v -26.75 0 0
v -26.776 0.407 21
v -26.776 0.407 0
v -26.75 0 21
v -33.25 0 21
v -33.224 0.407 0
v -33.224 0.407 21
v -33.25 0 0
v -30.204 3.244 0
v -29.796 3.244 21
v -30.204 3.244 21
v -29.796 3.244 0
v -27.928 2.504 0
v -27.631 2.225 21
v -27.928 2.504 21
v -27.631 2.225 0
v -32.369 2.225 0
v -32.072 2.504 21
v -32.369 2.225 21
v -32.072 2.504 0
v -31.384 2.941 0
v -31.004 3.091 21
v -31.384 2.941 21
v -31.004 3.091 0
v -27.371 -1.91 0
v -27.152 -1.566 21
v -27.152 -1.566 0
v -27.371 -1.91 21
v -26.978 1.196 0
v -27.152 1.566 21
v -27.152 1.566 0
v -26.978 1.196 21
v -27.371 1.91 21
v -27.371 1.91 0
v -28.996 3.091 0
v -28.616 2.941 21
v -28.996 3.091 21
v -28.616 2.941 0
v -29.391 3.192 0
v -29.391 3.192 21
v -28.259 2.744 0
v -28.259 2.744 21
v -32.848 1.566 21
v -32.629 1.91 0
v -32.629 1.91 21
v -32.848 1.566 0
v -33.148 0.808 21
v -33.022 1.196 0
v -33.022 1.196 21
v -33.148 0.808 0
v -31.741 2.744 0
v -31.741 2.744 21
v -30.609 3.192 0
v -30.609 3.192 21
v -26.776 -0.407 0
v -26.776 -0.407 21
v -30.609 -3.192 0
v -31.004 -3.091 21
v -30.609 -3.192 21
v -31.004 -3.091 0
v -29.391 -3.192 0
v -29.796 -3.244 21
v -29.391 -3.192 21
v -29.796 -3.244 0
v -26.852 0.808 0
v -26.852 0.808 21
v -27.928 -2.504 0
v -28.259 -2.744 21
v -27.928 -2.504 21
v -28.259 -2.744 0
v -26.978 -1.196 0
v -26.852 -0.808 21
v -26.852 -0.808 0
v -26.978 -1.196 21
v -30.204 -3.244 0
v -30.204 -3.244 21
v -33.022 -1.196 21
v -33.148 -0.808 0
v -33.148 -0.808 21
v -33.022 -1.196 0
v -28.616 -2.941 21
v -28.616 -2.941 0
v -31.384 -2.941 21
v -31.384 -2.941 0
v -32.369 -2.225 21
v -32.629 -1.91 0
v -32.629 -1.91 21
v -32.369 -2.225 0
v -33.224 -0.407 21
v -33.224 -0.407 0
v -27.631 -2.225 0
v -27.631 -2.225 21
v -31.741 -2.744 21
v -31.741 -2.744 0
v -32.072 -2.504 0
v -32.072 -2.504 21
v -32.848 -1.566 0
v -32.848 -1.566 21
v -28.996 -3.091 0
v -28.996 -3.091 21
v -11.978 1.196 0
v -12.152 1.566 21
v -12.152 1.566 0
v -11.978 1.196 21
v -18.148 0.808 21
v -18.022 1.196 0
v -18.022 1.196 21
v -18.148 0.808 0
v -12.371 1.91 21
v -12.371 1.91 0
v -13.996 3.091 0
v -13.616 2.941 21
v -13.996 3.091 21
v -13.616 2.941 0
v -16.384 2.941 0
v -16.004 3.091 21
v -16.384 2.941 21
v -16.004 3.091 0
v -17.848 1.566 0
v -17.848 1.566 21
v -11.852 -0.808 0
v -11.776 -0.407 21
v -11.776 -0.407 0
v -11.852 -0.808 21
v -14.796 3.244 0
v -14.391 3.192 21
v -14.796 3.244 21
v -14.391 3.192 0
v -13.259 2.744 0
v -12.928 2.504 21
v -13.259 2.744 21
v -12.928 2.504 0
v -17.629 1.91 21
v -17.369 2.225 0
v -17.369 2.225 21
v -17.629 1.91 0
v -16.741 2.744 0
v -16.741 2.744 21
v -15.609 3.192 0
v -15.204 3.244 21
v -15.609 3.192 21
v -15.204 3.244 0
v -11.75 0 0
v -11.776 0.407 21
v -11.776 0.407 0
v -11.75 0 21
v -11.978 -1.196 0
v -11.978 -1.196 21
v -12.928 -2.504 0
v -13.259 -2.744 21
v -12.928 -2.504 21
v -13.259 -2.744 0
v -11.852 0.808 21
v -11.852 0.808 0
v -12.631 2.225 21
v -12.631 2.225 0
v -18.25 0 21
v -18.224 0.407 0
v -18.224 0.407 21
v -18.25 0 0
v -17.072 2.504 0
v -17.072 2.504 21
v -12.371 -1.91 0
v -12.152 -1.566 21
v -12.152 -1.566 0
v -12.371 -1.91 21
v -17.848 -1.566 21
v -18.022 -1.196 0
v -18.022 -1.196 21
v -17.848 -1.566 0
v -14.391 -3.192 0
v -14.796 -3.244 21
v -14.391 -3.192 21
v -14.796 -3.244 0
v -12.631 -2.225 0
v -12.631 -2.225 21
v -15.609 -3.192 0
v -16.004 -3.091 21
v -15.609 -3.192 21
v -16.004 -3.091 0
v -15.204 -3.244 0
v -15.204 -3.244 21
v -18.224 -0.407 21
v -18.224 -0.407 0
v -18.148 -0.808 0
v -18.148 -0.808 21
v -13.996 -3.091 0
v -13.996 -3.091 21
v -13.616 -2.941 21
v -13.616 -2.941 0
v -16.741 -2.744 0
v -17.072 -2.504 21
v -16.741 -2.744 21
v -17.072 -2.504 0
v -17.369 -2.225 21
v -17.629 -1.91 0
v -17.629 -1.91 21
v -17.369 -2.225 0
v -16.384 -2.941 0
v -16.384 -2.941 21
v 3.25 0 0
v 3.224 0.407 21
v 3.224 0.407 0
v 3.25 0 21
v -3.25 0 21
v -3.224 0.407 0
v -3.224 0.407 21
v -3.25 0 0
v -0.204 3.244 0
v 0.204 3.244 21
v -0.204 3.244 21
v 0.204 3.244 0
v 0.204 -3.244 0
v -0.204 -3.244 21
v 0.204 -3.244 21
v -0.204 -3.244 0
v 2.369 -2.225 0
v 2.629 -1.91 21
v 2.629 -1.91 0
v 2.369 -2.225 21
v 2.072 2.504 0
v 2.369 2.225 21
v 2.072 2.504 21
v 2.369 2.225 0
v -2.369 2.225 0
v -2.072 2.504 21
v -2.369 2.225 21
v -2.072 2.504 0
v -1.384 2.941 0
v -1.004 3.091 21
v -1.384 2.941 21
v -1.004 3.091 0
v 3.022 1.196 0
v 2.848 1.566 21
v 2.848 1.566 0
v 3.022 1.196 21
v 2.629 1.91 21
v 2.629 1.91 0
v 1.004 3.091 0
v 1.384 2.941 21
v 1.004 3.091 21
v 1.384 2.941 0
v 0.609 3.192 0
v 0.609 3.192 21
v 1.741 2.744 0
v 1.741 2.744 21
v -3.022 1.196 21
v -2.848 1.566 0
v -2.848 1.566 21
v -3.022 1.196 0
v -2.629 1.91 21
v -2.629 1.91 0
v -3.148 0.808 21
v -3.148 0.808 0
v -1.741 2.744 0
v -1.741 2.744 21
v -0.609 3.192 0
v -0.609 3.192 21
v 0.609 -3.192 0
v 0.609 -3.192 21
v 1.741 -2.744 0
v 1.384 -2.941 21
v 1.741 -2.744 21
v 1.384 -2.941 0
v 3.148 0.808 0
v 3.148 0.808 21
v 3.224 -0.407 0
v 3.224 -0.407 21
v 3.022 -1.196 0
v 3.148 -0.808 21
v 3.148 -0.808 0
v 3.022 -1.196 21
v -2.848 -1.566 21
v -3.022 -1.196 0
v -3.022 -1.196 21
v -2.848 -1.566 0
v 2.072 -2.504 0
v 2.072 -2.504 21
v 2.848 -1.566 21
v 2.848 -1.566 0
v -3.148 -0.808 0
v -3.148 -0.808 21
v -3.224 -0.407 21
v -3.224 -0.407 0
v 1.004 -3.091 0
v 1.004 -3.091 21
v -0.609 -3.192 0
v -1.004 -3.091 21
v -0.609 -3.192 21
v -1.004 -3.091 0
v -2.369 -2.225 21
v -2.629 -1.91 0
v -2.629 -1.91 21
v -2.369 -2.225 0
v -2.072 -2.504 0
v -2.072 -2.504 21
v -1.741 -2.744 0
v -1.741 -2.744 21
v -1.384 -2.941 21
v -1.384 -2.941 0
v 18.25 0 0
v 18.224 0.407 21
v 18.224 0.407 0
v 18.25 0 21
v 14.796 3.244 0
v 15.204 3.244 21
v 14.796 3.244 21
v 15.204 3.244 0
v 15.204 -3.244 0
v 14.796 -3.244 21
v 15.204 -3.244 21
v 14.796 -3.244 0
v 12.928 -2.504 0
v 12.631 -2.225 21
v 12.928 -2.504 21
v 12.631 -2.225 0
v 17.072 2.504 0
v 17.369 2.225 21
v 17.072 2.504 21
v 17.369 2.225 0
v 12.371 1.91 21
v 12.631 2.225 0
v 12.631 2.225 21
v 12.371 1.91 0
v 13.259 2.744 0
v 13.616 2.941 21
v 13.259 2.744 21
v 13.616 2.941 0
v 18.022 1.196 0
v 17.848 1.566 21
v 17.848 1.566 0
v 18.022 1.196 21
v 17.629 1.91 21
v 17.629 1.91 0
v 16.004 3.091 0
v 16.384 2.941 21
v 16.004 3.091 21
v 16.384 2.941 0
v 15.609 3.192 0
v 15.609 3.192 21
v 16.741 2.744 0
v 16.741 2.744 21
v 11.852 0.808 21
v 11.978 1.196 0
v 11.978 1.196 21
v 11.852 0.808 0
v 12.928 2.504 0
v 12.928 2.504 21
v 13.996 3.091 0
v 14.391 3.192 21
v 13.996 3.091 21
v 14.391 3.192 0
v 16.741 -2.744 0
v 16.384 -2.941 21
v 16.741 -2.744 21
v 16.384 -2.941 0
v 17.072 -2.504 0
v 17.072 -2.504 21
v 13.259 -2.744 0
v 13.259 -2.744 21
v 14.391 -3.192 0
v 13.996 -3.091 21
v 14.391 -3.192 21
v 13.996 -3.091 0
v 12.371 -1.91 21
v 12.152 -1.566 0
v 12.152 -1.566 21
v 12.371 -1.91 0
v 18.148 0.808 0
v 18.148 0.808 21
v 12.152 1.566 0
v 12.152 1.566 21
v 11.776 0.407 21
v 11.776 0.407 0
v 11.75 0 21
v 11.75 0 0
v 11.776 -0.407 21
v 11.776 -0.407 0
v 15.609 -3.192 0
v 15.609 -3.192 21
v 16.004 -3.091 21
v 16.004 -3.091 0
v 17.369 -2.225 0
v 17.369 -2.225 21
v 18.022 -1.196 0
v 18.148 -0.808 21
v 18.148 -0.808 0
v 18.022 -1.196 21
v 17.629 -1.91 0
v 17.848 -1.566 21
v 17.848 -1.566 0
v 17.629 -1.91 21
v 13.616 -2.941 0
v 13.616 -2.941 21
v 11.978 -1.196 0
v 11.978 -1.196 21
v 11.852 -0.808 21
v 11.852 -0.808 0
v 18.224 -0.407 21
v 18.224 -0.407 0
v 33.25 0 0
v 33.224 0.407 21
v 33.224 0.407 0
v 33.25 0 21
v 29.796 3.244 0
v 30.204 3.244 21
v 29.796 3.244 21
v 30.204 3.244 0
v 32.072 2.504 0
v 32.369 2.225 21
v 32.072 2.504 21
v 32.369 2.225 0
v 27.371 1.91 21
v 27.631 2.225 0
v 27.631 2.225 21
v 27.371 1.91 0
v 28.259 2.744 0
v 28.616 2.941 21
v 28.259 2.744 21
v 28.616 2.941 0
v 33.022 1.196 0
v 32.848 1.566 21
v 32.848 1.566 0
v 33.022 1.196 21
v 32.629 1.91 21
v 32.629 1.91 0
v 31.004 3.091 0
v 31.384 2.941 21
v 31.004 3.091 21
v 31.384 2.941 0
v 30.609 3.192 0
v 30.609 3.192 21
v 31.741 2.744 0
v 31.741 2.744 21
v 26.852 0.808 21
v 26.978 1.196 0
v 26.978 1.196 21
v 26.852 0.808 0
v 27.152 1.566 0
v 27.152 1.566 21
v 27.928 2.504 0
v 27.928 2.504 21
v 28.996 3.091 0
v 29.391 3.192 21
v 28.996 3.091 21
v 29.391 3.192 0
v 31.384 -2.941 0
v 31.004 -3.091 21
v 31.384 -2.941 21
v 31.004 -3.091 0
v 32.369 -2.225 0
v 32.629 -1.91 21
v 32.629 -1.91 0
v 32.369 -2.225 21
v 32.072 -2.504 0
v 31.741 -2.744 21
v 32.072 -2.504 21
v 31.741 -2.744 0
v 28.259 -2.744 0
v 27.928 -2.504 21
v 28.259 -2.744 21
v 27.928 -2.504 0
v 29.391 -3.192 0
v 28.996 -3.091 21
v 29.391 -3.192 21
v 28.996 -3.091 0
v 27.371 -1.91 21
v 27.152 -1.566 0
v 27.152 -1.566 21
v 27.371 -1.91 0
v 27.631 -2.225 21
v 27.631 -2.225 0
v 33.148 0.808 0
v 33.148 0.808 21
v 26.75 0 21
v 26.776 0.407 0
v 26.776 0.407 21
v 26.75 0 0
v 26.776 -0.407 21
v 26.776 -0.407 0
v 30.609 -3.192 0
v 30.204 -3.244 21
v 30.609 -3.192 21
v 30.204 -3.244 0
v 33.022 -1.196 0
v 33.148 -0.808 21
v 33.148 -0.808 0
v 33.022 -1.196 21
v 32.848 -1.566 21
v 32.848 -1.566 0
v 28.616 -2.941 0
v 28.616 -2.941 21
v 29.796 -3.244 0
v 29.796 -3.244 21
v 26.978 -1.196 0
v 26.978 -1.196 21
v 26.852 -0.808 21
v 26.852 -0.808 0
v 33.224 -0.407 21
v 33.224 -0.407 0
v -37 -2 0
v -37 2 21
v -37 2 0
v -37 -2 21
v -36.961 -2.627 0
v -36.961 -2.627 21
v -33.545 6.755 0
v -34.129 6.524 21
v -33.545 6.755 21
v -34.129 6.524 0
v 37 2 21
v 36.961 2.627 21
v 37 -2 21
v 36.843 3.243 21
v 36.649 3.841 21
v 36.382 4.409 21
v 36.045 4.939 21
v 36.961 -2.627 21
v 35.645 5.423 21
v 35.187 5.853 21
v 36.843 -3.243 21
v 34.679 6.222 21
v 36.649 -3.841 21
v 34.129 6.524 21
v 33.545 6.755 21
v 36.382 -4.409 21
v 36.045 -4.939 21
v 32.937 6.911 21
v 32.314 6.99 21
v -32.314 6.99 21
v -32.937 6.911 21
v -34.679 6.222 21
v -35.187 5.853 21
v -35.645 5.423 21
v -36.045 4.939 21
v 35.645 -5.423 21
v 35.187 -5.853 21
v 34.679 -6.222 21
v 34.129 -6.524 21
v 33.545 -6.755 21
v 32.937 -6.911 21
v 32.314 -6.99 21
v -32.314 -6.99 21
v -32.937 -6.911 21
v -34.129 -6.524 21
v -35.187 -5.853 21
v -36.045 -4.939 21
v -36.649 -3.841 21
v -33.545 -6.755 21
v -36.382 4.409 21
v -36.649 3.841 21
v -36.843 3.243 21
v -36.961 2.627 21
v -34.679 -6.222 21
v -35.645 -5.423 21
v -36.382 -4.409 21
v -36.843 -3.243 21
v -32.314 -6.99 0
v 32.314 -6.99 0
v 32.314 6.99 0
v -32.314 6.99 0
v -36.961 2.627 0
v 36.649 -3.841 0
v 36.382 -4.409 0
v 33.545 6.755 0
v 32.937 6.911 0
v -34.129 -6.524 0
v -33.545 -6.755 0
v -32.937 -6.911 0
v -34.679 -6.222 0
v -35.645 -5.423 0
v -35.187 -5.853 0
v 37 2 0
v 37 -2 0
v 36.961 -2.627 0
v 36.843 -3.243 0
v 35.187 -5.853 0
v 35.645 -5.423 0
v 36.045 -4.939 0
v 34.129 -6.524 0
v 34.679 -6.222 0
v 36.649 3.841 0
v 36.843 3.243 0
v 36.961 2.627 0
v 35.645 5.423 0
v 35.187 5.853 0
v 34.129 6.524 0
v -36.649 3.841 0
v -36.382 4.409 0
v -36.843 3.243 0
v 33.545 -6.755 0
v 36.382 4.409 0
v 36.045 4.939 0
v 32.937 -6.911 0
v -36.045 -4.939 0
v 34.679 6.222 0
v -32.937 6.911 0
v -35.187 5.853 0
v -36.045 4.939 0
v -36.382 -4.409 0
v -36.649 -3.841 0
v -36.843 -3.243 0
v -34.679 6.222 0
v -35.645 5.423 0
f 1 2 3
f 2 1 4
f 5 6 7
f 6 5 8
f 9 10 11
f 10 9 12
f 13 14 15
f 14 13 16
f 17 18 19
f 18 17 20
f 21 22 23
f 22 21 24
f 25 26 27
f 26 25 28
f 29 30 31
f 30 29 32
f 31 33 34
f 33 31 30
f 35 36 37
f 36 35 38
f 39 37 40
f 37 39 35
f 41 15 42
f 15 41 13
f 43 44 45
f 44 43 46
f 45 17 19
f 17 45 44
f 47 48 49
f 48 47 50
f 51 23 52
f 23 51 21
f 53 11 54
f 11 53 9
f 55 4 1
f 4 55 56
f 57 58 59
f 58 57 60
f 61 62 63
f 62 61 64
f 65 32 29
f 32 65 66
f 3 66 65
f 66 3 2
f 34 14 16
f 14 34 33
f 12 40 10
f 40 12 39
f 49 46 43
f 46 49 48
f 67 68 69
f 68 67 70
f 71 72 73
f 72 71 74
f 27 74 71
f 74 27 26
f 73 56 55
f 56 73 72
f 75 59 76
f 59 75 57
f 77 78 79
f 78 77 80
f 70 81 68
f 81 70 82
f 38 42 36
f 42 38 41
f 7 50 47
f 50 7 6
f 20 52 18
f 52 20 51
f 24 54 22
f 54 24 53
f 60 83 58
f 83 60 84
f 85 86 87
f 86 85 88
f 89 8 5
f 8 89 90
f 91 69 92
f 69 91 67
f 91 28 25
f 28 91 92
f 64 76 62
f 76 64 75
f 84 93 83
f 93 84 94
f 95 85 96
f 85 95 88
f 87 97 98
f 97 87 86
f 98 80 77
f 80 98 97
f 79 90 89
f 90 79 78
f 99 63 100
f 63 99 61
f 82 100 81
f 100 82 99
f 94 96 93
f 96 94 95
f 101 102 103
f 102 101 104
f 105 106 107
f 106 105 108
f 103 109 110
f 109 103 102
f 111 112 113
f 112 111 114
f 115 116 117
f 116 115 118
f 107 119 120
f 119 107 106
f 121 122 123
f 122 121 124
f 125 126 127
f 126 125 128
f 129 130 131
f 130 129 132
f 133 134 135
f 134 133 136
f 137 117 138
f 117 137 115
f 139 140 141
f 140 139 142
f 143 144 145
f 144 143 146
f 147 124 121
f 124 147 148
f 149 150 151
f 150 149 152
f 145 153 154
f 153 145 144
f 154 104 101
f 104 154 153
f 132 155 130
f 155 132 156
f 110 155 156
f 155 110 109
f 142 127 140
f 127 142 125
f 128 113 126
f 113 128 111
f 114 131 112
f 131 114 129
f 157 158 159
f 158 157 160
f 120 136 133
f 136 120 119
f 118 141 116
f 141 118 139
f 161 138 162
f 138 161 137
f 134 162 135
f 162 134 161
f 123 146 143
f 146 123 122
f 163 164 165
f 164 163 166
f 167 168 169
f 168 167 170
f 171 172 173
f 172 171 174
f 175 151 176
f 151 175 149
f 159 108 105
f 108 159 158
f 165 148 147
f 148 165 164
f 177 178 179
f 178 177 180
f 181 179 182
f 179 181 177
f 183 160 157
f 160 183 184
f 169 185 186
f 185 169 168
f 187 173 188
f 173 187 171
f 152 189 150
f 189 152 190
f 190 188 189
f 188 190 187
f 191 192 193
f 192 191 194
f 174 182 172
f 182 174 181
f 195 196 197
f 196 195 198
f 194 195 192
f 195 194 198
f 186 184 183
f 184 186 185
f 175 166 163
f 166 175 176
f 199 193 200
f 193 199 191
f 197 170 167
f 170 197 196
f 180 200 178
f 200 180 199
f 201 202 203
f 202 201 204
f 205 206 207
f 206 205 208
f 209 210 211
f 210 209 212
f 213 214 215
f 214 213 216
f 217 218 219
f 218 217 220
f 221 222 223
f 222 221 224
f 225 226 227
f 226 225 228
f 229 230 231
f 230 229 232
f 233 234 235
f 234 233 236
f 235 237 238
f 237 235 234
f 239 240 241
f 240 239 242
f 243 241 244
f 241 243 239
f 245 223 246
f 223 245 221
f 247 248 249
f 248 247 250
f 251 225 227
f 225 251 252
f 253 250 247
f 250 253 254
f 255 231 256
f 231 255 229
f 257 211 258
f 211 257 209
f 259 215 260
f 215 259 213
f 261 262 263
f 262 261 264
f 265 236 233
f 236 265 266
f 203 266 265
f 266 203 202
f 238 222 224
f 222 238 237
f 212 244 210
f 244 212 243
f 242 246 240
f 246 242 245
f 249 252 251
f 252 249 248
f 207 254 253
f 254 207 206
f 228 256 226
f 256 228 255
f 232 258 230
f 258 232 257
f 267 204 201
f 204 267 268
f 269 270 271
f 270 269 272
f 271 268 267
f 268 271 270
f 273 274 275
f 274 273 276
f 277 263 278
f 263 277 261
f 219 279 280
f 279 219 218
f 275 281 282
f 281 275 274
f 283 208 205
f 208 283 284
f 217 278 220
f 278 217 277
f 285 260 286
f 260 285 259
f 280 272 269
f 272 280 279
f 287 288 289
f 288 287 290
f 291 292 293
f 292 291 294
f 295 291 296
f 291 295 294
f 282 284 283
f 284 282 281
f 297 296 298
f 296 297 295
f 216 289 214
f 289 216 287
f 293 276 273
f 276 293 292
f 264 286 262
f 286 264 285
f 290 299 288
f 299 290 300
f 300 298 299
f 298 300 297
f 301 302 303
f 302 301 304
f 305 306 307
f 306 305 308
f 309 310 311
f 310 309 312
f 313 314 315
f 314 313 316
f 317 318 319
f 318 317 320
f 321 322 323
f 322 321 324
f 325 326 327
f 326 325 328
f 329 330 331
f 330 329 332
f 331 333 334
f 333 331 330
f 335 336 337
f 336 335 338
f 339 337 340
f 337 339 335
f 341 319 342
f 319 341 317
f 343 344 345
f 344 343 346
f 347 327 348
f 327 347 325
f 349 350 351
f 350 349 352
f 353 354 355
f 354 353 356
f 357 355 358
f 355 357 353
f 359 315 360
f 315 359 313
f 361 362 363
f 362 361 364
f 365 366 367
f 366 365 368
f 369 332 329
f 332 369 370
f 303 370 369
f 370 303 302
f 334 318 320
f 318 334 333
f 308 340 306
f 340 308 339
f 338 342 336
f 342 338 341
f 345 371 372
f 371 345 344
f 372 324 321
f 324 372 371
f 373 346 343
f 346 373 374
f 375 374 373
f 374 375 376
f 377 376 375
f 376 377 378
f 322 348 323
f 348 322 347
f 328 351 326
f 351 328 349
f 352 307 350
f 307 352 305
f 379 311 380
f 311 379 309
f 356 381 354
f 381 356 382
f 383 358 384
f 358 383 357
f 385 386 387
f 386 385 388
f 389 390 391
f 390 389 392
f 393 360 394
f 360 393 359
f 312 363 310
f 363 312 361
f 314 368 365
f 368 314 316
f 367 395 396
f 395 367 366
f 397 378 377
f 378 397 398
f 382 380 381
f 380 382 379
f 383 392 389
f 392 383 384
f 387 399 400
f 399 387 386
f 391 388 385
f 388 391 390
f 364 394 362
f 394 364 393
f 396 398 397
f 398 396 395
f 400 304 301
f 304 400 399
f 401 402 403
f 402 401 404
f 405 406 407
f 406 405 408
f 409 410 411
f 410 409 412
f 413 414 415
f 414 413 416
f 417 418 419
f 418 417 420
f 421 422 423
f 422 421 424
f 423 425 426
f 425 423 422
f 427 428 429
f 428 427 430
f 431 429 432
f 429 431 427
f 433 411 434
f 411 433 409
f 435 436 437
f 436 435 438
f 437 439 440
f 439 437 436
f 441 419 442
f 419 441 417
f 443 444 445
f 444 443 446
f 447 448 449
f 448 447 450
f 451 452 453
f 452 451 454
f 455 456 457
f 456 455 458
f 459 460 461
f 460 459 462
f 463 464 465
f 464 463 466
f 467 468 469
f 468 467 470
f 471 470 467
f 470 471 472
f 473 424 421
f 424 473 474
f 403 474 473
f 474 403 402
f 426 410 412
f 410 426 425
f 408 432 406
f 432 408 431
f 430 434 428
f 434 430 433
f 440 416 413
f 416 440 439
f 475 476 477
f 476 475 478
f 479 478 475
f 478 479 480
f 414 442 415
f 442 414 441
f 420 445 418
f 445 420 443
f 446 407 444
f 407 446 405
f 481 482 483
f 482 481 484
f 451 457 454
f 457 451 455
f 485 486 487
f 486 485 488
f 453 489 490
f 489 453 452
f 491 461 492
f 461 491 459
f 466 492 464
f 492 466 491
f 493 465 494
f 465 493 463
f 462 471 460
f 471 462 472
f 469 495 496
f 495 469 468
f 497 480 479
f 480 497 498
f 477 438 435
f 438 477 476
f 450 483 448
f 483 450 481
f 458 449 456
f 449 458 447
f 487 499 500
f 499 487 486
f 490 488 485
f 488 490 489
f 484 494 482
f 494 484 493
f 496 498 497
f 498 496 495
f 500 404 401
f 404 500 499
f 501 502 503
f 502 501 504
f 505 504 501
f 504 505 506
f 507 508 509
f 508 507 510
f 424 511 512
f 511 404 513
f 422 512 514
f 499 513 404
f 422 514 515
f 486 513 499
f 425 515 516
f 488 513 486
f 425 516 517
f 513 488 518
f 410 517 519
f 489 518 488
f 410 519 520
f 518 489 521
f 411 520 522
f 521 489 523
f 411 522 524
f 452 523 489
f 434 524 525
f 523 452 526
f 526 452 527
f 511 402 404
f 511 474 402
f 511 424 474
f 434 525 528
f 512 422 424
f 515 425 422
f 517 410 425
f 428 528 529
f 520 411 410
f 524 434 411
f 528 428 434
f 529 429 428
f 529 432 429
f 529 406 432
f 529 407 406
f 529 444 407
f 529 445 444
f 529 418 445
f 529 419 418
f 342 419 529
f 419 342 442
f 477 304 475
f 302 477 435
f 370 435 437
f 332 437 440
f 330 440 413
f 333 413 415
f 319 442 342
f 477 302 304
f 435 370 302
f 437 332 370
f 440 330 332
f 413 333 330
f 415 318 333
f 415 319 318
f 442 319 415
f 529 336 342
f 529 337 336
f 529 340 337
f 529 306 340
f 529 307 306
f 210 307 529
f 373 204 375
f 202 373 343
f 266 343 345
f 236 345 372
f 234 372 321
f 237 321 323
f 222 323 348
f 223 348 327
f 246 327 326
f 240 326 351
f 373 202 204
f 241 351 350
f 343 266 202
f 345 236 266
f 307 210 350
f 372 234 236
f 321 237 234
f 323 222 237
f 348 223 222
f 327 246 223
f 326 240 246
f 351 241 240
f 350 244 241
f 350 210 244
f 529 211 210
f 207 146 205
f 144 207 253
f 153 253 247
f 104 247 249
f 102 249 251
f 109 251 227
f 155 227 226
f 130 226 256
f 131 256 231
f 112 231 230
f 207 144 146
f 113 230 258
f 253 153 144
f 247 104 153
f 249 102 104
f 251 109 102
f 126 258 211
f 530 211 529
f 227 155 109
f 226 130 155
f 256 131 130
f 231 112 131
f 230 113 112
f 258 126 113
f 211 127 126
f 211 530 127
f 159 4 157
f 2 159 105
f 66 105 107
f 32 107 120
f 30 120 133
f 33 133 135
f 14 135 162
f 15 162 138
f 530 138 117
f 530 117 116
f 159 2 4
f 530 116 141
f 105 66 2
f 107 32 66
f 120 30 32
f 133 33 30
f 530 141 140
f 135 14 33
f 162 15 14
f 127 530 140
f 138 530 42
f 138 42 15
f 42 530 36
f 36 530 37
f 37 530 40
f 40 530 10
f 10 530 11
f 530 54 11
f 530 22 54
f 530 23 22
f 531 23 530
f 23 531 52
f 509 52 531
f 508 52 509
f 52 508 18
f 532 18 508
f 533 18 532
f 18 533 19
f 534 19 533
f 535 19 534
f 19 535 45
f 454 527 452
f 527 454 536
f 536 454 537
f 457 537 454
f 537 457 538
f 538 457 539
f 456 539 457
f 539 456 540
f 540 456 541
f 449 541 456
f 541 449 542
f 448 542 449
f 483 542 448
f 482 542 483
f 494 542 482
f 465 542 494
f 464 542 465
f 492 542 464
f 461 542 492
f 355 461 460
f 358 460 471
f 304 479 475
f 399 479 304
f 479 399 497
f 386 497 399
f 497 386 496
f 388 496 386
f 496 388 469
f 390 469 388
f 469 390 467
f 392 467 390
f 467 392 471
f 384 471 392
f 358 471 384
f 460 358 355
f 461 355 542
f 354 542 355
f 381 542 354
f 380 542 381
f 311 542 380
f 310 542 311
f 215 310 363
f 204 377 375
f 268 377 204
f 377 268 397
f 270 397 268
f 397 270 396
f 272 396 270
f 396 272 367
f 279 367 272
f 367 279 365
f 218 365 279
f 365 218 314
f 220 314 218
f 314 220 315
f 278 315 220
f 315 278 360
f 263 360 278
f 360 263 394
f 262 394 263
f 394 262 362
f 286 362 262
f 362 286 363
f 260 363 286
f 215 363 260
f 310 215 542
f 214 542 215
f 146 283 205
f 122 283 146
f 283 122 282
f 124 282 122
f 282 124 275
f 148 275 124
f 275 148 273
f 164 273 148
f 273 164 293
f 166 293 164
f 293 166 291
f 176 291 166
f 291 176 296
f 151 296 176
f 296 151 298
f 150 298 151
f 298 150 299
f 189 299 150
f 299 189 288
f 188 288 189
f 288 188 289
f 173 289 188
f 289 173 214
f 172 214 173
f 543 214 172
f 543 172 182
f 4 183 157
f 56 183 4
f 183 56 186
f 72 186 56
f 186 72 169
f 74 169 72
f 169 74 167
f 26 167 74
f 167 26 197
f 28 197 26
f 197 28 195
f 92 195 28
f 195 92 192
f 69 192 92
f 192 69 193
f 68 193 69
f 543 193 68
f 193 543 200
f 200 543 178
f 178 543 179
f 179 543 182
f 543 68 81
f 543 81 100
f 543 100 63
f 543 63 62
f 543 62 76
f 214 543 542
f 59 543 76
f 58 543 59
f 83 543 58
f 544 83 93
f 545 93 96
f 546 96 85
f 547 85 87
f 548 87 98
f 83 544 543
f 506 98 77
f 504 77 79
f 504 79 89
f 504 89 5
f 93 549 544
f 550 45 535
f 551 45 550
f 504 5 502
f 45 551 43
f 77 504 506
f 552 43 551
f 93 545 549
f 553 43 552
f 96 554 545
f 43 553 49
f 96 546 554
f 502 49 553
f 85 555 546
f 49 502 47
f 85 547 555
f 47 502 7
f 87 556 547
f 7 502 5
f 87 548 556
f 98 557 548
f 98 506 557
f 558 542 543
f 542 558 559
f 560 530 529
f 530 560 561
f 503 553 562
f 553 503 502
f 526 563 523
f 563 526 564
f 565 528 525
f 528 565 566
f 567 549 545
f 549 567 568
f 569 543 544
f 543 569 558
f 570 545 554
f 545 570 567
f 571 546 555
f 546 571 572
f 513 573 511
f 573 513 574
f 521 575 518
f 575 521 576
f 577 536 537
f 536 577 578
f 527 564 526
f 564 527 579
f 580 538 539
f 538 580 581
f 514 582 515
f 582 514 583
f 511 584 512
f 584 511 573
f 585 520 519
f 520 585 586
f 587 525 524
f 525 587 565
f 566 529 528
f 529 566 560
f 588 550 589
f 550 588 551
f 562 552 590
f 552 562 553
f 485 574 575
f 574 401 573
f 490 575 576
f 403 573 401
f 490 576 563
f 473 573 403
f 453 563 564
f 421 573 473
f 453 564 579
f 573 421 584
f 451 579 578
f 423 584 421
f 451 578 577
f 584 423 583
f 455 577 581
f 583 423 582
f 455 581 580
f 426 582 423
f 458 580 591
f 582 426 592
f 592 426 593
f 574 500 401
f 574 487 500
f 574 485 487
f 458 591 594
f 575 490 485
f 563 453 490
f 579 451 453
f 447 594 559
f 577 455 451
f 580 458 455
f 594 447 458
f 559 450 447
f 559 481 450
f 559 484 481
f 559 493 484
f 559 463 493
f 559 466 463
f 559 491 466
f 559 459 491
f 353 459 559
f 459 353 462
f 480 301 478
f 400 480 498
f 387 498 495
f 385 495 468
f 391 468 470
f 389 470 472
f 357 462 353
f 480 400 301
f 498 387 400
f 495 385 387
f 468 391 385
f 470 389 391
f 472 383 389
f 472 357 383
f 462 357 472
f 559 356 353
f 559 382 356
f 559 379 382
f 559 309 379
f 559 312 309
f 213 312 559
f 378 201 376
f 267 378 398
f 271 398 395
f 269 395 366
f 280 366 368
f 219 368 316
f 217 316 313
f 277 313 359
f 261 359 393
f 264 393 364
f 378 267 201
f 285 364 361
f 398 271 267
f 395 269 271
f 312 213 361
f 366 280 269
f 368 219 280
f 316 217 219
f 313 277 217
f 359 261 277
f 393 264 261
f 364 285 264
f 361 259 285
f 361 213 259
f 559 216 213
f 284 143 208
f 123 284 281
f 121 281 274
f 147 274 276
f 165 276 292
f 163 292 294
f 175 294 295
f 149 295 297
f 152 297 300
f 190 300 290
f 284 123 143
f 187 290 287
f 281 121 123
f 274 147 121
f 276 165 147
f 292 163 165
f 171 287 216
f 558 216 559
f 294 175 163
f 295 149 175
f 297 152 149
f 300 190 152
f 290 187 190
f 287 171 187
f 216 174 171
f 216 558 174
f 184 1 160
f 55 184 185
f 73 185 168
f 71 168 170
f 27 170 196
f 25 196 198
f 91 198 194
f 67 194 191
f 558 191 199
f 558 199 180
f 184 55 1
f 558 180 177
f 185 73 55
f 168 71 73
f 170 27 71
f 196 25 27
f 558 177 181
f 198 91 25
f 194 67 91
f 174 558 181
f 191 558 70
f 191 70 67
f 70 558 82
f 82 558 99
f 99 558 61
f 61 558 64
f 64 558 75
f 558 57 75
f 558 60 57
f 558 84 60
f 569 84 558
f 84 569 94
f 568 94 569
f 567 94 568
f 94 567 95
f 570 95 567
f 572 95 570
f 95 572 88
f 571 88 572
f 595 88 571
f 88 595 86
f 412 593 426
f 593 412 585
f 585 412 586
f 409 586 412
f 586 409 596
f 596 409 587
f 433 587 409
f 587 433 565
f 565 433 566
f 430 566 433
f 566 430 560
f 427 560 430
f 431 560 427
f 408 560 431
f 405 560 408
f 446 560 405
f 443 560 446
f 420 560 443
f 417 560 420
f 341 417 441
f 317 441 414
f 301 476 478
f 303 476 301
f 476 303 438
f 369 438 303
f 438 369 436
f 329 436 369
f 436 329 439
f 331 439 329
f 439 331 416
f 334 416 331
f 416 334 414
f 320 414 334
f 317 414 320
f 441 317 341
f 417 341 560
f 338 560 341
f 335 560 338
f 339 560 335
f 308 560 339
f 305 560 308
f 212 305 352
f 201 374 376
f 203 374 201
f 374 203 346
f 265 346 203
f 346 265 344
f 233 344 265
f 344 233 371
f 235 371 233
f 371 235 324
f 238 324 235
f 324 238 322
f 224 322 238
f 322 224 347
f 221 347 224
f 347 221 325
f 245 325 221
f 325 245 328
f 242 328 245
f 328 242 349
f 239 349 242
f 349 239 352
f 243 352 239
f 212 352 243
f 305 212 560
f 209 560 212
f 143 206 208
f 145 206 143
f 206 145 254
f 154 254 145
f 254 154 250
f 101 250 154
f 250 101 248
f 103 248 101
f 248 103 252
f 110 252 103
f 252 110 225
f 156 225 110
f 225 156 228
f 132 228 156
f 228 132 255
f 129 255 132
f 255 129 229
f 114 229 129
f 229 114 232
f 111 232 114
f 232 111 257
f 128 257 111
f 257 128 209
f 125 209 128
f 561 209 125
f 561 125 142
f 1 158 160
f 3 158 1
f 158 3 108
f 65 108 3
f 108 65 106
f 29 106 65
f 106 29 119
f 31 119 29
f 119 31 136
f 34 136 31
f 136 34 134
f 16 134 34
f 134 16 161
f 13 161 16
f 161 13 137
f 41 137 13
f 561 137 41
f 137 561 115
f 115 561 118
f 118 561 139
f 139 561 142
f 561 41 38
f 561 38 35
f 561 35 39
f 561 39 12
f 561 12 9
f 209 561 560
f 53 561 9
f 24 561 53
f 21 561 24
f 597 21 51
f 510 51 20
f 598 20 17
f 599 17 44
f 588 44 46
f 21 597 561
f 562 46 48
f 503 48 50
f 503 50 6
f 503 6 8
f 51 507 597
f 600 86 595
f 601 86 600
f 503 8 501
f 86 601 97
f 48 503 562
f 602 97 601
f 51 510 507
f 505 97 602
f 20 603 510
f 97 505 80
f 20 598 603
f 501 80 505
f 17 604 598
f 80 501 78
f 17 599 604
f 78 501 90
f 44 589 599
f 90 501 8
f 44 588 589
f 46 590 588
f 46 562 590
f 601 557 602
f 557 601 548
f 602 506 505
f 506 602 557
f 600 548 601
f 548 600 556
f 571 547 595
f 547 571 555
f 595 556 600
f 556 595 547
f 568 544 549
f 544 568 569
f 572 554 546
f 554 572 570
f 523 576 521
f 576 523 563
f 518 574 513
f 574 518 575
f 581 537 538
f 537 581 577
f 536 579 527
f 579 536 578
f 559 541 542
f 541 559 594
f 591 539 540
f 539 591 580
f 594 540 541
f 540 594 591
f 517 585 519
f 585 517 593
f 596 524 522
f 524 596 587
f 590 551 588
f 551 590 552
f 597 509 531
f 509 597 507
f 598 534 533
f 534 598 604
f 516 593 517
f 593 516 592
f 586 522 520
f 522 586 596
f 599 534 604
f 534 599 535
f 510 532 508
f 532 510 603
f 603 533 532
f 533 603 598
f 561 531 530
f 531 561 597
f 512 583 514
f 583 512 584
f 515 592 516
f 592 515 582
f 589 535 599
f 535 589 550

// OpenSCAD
$fn = 50;


difference() {
	union() {
		hull() {
			translate(v = [-32.0000000000, 2.0000000000, 0]) {
				cylinder(h = 21, r = 5);
			}
			translate(v = [32.0000000000, 2.0000000000, 0]) {
				cylinder(h = 21, r = 5);
			}
			translate(v = [-32.0000000000, -2.0000000000, 0]) {
				cylinder(h = 21, r = 5);
			}
			translate(v = [32.0000000000, -2.0000000000, 0]) {
				cylinder(h = 21, r = 5);
			}
		}
	}
	union() {
		translate(v = [-30.0000000000, 0.0000000000, 0]) {
			translate(v = [0, 0, -100]) {
				cylinder(h = 200, r = 3.2500000000);
			}
		}
		translate(v = [-15.0000000000, 0.0000000000, 0]) {
			translate(v = [0, 0, -100]) {
				cylinder(h = 200, r = 3.2500000000);
			}
		}
		translate(v = [0, 0, -100]) {
			cylinder(h = 200, r = 3.2500000000);
		}
		translate(v = [15.0000000000, 0.0000000000, 0]) {
			translate(v = [0, 0, -100]) {
				cylinder(h = 200, r = 3.2500000000);
			}
		}
		translate(v = [30.0000000000, 0.0000000000, 0]) {
			translate(v = [0, 0, -100]) {
				cylinder(h = 200, r = 3.2500000000);
			}
		}
	}
}
